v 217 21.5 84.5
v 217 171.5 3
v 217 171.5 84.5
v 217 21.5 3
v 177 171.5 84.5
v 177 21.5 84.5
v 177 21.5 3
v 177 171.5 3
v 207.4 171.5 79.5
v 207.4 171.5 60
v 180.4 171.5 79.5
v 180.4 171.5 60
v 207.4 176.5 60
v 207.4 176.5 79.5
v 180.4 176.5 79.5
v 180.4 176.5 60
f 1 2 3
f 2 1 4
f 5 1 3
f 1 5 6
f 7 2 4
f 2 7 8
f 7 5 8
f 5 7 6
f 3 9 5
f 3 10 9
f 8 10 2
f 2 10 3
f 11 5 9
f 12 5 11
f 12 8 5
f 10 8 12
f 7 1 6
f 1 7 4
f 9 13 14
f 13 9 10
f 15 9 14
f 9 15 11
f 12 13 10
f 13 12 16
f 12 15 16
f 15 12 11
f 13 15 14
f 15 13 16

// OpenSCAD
// The flex atx power supply envelope from the Mini-ITX case example, as the eval's reference.
// Render: openscad -o model.stl model.scad
include <../../../../../examples/mini-itx-case/case.scad>
part = "psu";
